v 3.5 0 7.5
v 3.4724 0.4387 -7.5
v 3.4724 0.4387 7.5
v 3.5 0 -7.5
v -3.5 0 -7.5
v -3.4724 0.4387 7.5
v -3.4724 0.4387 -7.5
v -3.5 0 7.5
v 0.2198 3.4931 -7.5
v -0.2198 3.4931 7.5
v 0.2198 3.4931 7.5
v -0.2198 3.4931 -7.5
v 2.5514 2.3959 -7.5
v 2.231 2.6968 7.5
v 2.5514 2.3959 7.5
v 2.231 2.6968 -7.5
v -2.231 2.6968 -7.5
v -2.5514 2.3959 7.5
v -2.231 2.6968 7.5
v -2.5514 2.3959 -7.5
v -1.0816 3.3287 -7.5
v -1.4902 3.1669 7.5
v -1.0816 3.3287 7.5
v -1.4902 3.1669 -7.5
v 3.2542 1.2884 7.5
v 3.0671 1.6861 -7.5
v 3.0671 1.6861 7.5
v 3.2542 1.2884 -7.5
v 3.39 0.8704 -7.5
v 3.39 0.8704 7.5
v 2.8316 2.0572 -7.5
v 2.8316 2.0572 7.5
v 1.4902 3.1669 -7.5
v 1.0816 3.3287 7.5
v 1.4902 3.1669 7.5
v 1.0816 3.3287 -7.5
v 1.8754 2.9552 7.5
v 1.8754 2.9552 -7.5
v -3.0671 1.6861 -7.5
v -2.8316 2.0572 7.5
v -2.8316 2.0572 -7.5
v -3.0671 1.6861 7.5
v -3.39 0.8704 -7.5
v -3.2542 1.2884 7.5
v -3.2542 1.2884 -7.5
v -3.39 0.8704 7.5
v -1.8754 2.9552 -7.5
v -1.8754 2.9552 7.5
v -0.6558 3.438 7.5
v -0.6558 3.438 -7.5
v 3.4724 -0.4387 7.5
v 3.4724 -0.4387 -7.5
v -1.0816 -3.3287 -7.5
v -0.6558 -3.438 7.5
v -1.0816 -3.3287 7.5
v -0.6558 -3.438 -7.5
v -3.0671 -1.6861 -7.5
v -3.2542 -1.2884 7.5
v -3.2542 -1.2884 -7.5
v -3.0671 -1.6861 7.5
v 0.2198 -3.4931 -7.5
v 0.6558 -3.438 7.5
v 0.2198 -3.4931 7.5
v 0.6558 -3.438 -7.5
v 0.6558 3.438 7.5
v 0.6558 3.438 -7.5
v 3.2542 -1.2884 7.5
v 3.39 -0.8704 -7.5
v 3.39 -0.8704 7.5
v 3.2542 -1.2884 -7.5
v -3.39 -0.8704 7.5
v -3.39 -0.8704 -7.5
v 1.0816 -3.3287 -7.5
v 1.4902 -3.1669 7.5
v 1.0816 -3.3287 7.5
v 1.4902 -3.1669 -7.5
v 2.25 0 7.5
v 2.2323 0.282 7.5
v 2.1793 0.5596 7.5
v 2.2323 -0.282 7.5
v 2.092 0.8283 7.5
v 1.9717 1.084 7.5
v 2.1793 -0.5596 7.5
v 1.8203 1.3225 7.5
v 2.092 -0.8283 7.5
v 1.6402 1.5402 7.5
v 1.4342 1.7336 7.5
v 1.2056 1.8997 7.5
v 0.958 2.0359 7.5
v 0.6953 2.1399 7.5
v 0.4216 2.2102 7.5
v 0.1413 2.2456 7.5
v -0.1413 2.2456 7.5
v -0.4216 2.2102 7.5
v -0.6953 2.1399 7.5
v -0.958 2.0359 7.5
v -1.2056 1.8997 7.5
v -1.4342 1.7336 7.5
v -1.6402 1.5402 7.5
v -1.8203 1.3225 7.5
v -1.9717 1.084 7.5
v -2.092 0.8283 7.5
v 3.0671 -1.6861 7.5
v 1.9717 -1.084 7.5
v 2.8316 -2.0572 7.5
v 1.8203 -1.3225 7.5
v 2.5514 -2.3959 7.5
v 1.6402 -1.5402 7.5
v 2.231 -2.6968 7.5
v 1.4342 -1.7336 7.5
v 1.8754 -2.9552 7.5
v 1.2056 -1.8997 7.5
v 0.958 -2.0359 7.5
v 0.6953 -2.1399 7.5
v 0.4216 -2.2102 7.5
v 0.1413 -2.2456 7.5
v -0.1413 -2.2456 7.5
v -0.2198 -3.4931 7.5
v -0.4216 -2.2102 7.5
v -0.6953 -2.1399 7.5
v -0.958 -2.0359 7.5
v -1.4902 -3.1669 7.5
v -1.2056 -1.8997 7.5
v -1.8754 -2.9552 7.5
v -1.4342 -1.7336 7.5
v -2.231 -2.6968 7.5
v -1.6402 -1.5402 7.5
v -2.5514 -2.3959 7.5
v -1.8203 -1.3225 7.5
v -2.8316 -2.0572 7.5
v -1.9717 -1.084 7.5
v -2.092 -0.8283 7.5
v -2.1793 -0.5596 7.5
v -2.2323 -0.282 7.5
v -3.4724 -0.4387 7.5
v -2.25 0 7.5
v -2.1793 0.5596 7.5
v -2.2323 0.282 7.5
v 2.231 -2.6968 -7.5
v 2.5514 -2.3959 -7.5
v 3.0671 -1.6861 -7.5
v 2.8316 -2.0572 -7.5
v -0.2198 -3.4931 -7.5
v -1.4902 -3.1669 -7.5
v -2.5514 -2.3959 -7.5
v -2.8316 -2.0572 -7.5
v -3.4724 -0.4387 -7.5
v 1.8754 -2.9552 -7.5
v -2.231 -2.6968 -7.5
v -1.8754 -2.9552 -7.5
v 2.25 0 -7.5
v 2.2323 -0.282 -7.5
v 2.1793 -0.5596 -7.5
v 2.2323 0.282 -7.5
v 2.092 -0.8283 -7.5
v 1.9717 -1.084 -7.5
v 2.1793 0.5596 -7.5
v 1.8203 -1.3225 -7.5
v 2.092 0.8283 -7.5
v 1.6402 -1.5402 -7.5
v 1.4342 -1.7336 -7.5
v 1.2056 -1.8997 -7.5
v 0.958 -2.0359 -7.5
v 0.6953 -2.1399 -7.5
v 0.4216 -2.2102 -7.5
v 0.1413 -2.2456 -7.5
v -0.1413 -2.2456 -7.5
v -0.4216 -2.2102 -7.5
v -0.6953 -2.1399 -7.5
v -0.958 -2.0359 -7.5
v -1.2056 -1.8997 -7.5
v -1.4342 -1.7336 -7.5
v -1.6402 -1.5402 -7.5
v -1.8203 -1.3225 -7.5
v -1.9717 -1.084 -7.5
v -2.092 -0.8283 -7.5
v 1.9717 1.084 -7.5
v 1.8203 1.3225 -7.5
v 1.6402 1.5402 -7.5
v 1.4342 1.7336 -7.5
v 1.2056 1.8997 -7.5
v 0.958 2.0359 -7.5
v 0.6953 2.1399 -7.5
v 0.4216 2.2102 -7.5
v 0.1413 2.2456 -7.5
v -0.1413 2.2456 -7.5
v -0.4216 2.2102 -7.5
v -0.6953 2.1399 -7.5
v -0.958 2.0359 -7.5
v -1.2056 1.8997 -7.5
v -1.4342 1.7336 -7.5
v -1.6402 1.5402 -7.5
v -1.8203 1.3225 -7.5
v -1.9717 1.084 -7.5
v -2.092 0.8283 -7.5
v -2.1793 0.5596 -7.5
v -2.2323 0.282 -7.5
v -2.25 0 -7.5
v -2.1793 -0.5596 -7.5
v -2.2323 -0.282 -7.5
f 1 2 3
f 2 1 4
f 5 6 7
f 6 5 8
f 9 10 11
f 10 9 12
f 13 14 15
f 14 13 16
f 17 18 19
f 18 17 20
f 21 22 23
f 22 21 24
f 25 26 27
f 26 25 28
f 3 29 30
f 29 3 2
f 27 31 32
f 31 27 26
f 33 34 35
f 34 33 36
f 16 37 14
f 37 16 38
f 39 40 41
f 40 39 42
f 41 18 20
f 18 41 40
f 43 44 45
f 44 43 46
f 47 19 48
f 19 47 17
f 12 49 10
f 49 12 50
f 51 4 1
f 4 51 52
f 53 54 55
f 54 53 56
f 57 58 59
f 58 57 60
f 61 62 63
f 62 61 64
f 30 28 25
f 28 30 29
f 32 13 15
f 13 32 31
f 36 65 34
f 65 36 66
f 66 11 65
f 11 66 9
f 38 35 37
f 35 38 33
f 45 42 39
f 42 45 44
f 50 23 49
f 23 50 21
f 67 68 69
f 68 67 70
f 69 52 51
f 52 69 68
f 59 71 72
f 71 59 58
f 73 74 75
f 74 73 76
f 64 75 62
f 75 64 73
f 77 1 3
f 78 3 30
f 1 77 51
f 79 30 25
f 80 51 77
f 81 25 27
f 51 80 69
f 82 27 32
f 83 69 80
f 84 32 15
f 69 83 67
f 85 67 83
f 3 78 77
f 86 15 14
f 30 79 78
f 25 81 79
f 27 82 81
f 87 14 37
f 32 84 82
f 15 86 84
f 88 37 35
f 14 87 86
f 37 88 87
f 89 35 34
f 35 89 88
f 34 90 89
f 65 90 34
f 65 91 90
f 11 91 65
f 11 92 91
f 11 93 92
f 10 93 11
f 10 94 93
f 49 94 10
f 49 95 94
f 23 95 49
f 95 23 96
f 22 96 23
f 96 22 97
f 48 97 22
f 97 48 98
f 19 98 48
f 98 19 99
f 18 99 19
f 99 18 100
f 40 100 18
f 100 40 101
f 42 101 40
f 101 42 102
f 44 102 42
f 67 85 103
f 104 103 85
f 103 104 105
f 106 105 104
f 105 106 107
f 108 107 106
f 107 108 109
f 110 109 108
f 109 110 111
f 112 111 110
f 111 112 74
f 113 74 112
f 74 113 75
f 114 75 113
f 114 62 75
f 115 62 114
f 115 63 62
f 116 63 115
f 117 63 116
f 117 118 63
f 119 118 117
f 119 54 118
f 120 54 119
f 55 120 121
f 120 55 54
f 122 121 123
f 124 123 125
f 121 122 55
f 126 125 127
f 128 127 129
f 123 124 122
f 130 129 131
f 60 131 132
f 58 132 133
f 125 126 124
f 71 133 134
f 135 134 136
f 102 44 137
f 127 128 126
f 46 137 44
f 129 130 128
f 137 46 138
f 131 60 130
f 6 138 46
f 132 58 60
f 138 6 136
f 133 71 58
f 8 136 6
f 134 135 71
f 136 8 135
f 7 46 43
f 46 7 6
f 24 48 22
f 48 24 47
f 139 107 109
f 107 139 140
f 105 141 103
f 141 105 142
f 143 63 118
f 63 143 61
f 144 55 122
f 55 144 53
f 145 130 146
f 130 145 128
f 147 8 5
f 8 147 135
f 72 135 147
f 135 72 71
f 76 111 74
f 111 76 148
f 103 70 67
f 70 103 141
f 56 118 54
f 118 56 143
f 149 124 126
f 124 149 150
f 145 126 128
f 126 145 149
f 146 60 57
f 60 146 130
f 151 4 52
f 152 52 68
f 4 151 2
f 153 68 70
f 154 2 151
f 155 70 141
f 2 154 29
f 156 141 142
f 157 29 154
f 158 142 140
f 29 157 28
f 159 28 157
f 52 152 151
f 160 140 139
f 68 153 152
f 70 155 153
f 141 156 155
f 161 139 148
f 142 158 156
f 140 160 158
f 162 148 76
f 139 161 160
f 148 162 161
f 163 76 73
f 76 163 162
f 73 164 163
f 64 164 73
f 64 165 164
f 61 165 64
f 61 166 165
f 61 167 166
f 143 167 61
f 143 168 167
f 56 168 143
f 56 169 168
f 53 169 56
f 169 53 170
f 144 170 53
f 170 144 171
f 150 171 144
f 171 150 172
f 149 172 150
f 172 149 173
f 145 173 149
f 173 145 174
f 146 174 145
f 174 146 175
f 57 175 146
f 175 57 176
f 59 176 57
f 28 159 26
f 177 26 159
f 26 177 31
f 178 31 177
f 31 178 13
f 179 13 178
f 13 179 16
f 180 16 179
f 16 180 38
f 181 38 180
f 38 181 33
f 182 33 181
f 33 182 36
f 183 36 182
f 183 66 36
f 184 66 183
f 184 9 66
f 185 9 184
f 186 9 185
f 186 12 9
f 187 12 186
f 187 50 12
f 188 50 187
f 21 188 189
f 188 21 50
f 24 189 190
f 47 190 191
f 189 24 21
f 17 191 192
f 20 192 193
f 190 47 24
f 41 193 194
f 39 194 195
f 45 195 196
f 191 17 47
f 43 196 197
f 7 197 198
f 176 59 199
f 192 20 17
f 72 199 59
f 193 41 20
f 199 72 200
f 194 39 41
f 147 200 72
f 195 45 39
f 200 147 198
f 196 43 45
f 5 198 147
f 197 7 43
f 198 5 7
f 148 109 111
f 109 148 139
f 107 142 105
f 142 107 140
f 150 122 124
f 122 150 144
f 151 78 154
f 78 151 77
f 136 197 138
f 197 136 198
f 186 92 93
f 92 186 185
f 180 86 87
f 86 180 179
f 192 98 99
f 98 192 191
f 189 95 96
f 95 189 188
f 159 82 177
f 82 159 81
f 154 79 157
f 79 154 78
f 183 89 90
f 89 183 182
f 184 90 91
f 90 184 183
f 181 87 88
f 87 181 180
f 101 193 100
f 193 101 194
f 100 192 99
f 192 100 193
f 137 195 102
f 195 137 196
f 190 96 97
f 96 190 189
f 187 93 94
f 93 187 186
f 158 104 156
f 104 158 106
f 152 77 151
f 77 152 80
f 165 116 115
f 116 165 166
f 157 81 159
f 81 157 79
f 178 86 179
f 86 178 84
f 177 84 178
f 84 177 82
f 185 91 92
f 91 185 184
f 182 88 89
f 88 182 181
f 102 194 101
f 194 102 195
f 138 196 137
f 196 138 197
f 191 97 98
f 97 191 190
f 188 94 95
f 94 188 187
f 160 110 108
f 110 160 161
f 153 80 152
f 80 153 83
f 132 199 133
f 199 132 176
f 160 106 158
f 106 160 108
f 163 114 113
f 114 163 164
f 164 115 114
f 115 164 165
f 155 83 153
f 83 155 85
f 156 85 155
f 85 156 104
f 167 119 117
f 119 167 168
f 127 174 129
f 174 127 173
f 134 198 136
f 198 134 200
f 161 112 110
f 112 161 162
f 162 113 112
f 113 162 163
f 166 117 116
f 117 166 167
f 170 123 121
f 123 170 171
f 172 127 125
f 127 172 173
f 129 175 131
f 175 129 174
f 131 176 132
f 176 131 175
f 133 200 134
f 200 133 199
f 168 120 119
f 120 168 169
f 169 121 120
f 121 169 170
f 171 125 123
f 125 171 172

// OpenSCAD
$fn = 50;


difference() {
	union() {
		translate(v = [0, 0, -7.5000000000]) {
			cylinder(h = 15, r = 3.5000000000);
		}
	}
	union() {
		translate(v = [0, 0, -100.0000000000]) {
			cylinder(h = 200, r = 2.2500000000);
		}
	}
}
